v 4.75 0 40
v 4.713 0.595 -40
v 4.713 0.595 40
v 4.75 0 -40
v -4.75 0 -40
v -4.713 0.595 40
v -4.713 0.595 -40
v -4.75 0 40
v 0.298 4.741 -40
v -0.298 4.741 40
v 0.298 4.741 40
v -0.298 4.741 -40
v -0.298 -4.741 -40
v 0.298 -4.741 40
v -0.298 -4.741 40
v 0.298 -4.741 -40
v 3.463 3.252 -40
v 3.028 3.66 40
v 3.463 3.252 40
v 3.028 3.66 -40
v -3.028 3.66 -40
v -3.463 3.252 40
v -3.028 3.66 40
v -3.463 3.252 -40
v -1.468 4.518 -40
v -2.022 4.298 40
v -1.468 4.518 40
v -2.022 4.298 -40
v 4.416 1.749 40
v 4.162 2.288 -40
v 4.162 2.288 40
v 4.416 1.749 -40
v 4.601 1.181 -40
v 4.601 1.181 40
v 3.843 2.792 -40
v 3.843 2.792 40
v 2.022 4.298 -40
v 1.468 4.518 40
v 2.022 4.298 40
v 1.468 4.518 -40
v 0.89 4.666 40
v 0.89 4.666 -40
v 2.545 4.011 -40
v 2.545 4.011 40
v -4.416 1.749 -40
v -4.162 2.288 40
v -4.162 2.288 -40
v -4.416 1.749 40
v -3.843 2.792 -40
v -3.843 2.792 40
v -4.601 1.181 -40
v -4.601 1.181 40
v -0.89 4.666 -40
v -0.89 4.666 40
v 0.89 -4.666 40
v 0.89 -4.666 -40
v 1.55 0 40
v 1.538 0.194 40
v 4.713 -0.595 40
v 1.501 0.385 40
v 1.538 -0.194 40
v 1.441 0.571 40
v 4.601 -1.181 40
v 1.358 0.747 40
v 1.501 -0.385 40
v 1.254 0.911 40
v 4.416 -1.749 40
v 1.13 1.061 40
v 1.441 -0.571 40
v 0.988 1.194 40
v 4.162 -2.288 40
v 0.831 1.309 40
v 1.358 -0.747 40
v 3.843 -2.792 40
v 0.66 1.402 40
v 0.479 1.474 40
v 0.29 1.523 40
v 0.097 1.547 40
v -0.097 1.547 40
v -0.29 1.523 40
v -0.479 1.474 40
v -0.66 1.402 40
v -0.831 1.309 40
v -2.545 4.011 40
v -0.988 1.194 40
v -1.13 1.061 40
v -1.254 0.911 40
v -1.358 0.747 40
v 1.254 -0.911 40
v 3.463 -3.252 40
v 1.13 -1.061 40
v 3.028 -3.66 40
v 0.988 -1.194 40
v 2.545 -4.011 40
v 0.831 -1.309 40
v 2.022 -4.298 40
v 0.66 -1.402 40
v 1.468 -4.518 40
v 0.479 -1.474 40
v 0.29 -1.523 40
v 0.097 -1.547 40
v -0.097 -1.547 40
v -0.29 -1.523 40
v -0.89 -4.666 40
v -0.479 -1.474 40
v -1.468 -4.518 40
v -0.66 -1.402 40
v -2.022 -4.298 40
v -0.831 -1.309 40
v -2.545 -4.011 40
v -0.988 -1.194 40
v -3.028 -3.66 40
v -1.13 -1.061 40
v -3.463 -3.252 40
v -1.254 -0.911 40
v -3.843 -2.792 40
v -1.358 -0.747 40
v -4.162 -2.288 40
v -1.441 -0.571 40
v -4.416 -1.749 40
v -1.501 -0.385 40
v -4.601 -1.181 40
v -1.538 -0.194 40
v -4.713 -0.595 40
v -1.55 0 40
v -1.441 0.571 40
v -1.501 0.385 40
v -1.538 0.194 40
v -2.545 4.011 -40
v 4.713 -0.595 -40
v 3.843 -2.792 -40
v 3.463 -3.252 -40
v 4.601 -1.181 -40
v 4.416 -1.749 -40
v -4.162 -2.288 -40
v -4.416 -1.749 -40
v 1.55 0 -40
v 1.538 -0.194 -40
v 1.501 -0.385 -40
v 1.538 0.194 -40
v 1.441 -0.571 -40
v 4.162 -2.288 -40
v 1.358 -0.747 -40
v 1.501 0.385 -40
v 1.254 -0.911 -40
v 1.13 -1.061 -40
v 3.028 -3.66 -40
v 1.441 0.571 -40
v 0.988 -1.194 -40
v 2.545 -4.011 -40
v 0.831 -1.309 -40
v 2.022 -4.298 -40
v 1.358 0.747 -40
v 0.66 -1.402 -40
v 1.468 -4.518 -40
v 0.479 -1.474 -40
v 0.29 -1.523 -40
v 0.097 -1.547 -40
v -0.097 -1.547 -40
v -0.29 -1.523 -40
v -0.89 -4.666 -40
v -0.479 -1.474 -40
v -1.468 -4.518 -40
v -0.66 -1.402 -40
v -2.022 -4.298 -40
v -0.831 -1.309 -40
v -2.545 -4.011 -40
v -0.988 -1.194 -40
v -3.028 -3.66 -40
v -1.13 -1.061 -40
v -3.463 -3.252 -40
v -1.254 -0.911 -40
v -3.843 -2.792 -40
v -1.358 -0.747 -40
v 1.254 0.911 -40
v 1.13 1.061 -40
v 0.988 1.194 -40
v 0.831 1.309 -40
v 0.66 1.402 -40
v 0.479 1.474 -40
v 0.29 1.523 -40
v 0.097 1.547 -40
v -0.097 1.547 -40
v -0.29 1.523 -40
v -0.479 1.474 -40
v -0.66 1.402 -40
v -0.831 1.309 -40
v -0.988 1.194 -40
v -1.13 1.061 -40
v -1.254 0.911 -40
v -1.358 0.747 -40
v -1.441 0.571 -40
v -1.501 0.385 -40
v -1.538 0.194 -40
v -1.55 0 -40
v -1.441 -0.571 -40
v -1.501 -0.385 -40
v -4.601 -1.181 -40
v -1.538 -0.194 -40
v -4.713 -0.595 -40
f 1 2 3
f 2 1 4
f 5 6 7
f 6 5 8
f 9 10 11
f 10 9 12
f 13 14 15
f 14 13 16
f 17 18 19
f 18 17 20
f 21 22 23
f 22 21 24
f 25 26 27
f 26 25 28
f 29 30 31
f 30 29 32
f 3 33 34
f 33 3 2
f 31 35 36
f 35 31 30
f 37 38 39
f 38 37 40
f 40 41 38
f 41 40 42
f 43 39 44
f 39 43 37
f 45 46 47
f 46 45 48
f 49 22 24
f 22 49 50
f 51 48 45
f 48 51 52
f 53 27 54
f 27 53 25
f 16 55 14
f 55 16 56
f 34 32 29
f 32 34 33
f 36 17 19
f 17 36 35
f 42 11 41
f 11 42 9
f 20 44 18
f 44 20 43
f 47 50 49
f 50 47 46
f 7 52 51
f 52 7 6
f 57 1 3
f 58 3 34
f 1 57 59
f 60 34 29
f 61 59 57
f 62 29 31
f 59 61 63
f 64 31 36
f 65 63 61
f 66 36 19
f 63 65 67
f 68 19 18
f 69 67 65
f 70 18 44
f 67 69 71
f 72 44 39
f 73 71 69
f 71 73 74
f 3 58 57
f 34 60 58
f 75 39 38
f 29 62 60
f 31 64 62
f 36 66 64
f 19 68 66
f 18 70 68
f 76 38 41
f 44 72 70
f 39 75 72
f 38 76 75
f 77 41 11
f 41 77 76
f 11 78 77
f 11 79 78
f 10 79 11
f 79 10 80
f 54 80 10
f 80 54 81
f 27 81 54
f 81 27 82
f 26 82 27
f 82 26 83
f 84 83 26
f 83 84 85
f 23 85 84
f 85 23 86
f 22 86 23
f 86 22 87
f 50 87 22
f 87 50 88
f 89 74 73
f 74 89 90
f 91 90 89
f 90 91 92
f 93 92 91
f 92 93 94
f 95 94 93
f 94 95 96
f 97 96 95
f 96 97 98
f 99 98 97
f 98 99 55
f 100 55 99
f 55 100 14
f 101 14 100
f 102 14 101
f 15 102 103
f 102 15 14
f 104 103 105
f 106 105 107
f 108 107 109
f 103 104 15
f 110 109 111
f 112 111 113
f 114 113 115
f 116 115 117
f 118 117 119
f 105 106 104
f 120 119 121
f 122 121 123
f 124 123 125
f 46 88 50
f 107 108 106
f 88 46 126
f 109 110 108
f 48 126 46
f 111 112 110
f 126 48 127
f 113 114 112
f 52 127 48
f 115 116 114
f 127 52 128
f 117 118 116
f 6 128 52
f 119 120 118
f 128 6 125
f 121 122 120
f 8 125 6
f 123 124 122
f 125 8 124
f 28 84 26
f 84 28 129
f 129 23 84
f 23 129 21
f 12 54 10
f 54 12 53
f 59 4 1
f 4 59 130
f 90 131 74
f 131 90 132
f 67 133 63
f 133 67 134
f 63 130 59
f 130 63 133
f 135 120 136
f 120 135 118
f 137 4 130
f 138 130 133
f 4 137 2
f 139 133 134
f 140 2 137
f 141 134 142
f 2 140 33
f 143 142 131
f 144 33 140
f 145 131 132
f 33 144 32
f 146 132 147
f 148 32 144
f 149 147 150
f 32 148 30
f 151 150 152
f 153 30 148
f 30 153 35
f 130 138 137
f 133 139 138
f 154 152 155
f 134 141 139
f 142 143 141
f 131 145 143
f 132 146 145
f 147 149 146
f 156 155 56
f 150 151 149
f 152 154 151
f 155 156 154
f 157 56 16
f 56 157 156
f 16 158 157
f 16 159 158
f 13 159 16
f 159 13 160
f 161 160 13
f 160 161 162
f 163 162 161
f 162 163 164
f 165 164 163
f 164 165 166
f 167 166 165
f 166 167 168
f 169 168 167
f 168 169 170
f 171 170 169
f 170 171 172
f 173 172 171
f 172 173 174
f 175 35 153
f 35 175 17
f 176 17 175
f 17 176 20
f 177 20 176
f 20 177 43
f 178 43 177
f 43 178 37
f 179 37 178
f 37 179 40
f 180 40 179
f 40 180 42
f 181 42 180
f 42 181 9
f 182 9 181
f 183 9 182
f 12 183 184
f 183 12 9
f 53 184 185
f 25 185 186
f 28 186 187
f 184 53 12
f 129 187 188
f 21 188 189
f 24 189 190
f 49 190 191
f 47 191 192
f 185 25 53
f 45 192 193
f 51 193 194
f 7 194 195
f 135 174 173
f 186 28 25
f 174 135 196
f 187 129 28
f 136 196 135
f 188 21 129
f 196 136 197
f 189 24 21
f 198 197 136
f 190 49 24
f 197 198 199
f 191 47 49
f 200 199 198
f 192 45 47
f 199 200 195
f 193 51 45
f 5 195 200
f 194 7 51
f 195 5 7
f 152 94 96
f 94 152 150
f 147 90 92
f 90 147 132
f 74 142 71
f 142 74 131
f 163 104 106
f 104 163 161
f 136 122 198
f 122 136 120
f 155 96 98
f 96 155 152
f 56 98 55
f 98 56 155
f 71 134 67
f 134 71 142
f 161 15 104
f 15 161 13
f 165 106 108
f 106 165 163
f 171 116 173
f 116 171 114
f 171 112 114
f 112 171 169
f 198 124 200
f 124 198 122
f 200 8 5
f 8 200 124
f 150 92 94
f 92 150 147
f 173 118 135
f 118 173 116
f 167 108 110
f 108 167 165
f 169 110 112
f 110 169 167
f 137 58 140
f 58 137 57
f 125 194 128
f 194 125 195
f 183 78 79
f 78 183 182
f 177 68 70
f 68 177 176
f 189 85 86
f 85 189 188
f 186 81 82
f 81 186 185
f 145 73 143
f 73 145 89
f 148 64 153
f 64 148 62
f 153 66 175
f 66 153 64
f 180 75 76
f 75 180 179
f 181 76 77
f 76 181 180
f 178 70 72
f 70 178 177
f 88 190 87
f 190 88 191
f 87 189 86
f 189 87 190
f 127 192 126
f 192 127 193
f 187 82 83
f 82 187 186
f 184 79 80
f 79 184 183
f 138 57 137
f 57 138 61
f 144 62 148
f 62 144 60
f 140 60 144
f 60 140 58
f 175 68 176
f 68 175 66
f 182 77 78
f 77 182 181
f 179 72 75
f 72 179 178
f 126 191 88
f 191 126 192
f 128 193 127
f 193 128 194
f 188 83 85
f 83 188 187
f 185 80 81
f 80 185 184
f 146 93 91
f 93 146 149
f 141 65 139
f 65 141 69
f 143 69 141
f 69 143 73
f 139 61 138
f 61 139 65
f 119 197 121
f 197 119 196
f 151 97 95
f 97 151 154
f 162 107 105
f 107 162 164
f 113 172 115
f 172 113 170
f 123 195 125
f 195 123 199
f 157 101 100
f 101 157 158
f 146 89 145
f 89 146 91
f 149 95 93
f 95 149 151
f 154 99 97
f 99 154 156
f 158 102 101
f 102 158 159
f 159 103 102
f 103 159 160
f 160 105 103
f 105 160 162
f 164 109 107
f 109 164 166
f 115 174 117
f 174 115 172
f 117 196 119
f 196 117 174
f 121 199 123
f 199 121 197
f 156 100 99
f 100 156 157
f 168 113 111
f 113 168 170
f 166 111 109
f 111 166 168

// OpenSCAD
$fn = 50;


difference() {
	union() {
		translate(v = [0, 0, -40.0000000000]) {
			cylinder(h = 80, r = 4.7500000000);
		}
	}
	union() {
		translate(v = [0, 0, -100.0000000000]) {
			cylinder(h = 200, r = 1.5500000000);
		}
	}
}
